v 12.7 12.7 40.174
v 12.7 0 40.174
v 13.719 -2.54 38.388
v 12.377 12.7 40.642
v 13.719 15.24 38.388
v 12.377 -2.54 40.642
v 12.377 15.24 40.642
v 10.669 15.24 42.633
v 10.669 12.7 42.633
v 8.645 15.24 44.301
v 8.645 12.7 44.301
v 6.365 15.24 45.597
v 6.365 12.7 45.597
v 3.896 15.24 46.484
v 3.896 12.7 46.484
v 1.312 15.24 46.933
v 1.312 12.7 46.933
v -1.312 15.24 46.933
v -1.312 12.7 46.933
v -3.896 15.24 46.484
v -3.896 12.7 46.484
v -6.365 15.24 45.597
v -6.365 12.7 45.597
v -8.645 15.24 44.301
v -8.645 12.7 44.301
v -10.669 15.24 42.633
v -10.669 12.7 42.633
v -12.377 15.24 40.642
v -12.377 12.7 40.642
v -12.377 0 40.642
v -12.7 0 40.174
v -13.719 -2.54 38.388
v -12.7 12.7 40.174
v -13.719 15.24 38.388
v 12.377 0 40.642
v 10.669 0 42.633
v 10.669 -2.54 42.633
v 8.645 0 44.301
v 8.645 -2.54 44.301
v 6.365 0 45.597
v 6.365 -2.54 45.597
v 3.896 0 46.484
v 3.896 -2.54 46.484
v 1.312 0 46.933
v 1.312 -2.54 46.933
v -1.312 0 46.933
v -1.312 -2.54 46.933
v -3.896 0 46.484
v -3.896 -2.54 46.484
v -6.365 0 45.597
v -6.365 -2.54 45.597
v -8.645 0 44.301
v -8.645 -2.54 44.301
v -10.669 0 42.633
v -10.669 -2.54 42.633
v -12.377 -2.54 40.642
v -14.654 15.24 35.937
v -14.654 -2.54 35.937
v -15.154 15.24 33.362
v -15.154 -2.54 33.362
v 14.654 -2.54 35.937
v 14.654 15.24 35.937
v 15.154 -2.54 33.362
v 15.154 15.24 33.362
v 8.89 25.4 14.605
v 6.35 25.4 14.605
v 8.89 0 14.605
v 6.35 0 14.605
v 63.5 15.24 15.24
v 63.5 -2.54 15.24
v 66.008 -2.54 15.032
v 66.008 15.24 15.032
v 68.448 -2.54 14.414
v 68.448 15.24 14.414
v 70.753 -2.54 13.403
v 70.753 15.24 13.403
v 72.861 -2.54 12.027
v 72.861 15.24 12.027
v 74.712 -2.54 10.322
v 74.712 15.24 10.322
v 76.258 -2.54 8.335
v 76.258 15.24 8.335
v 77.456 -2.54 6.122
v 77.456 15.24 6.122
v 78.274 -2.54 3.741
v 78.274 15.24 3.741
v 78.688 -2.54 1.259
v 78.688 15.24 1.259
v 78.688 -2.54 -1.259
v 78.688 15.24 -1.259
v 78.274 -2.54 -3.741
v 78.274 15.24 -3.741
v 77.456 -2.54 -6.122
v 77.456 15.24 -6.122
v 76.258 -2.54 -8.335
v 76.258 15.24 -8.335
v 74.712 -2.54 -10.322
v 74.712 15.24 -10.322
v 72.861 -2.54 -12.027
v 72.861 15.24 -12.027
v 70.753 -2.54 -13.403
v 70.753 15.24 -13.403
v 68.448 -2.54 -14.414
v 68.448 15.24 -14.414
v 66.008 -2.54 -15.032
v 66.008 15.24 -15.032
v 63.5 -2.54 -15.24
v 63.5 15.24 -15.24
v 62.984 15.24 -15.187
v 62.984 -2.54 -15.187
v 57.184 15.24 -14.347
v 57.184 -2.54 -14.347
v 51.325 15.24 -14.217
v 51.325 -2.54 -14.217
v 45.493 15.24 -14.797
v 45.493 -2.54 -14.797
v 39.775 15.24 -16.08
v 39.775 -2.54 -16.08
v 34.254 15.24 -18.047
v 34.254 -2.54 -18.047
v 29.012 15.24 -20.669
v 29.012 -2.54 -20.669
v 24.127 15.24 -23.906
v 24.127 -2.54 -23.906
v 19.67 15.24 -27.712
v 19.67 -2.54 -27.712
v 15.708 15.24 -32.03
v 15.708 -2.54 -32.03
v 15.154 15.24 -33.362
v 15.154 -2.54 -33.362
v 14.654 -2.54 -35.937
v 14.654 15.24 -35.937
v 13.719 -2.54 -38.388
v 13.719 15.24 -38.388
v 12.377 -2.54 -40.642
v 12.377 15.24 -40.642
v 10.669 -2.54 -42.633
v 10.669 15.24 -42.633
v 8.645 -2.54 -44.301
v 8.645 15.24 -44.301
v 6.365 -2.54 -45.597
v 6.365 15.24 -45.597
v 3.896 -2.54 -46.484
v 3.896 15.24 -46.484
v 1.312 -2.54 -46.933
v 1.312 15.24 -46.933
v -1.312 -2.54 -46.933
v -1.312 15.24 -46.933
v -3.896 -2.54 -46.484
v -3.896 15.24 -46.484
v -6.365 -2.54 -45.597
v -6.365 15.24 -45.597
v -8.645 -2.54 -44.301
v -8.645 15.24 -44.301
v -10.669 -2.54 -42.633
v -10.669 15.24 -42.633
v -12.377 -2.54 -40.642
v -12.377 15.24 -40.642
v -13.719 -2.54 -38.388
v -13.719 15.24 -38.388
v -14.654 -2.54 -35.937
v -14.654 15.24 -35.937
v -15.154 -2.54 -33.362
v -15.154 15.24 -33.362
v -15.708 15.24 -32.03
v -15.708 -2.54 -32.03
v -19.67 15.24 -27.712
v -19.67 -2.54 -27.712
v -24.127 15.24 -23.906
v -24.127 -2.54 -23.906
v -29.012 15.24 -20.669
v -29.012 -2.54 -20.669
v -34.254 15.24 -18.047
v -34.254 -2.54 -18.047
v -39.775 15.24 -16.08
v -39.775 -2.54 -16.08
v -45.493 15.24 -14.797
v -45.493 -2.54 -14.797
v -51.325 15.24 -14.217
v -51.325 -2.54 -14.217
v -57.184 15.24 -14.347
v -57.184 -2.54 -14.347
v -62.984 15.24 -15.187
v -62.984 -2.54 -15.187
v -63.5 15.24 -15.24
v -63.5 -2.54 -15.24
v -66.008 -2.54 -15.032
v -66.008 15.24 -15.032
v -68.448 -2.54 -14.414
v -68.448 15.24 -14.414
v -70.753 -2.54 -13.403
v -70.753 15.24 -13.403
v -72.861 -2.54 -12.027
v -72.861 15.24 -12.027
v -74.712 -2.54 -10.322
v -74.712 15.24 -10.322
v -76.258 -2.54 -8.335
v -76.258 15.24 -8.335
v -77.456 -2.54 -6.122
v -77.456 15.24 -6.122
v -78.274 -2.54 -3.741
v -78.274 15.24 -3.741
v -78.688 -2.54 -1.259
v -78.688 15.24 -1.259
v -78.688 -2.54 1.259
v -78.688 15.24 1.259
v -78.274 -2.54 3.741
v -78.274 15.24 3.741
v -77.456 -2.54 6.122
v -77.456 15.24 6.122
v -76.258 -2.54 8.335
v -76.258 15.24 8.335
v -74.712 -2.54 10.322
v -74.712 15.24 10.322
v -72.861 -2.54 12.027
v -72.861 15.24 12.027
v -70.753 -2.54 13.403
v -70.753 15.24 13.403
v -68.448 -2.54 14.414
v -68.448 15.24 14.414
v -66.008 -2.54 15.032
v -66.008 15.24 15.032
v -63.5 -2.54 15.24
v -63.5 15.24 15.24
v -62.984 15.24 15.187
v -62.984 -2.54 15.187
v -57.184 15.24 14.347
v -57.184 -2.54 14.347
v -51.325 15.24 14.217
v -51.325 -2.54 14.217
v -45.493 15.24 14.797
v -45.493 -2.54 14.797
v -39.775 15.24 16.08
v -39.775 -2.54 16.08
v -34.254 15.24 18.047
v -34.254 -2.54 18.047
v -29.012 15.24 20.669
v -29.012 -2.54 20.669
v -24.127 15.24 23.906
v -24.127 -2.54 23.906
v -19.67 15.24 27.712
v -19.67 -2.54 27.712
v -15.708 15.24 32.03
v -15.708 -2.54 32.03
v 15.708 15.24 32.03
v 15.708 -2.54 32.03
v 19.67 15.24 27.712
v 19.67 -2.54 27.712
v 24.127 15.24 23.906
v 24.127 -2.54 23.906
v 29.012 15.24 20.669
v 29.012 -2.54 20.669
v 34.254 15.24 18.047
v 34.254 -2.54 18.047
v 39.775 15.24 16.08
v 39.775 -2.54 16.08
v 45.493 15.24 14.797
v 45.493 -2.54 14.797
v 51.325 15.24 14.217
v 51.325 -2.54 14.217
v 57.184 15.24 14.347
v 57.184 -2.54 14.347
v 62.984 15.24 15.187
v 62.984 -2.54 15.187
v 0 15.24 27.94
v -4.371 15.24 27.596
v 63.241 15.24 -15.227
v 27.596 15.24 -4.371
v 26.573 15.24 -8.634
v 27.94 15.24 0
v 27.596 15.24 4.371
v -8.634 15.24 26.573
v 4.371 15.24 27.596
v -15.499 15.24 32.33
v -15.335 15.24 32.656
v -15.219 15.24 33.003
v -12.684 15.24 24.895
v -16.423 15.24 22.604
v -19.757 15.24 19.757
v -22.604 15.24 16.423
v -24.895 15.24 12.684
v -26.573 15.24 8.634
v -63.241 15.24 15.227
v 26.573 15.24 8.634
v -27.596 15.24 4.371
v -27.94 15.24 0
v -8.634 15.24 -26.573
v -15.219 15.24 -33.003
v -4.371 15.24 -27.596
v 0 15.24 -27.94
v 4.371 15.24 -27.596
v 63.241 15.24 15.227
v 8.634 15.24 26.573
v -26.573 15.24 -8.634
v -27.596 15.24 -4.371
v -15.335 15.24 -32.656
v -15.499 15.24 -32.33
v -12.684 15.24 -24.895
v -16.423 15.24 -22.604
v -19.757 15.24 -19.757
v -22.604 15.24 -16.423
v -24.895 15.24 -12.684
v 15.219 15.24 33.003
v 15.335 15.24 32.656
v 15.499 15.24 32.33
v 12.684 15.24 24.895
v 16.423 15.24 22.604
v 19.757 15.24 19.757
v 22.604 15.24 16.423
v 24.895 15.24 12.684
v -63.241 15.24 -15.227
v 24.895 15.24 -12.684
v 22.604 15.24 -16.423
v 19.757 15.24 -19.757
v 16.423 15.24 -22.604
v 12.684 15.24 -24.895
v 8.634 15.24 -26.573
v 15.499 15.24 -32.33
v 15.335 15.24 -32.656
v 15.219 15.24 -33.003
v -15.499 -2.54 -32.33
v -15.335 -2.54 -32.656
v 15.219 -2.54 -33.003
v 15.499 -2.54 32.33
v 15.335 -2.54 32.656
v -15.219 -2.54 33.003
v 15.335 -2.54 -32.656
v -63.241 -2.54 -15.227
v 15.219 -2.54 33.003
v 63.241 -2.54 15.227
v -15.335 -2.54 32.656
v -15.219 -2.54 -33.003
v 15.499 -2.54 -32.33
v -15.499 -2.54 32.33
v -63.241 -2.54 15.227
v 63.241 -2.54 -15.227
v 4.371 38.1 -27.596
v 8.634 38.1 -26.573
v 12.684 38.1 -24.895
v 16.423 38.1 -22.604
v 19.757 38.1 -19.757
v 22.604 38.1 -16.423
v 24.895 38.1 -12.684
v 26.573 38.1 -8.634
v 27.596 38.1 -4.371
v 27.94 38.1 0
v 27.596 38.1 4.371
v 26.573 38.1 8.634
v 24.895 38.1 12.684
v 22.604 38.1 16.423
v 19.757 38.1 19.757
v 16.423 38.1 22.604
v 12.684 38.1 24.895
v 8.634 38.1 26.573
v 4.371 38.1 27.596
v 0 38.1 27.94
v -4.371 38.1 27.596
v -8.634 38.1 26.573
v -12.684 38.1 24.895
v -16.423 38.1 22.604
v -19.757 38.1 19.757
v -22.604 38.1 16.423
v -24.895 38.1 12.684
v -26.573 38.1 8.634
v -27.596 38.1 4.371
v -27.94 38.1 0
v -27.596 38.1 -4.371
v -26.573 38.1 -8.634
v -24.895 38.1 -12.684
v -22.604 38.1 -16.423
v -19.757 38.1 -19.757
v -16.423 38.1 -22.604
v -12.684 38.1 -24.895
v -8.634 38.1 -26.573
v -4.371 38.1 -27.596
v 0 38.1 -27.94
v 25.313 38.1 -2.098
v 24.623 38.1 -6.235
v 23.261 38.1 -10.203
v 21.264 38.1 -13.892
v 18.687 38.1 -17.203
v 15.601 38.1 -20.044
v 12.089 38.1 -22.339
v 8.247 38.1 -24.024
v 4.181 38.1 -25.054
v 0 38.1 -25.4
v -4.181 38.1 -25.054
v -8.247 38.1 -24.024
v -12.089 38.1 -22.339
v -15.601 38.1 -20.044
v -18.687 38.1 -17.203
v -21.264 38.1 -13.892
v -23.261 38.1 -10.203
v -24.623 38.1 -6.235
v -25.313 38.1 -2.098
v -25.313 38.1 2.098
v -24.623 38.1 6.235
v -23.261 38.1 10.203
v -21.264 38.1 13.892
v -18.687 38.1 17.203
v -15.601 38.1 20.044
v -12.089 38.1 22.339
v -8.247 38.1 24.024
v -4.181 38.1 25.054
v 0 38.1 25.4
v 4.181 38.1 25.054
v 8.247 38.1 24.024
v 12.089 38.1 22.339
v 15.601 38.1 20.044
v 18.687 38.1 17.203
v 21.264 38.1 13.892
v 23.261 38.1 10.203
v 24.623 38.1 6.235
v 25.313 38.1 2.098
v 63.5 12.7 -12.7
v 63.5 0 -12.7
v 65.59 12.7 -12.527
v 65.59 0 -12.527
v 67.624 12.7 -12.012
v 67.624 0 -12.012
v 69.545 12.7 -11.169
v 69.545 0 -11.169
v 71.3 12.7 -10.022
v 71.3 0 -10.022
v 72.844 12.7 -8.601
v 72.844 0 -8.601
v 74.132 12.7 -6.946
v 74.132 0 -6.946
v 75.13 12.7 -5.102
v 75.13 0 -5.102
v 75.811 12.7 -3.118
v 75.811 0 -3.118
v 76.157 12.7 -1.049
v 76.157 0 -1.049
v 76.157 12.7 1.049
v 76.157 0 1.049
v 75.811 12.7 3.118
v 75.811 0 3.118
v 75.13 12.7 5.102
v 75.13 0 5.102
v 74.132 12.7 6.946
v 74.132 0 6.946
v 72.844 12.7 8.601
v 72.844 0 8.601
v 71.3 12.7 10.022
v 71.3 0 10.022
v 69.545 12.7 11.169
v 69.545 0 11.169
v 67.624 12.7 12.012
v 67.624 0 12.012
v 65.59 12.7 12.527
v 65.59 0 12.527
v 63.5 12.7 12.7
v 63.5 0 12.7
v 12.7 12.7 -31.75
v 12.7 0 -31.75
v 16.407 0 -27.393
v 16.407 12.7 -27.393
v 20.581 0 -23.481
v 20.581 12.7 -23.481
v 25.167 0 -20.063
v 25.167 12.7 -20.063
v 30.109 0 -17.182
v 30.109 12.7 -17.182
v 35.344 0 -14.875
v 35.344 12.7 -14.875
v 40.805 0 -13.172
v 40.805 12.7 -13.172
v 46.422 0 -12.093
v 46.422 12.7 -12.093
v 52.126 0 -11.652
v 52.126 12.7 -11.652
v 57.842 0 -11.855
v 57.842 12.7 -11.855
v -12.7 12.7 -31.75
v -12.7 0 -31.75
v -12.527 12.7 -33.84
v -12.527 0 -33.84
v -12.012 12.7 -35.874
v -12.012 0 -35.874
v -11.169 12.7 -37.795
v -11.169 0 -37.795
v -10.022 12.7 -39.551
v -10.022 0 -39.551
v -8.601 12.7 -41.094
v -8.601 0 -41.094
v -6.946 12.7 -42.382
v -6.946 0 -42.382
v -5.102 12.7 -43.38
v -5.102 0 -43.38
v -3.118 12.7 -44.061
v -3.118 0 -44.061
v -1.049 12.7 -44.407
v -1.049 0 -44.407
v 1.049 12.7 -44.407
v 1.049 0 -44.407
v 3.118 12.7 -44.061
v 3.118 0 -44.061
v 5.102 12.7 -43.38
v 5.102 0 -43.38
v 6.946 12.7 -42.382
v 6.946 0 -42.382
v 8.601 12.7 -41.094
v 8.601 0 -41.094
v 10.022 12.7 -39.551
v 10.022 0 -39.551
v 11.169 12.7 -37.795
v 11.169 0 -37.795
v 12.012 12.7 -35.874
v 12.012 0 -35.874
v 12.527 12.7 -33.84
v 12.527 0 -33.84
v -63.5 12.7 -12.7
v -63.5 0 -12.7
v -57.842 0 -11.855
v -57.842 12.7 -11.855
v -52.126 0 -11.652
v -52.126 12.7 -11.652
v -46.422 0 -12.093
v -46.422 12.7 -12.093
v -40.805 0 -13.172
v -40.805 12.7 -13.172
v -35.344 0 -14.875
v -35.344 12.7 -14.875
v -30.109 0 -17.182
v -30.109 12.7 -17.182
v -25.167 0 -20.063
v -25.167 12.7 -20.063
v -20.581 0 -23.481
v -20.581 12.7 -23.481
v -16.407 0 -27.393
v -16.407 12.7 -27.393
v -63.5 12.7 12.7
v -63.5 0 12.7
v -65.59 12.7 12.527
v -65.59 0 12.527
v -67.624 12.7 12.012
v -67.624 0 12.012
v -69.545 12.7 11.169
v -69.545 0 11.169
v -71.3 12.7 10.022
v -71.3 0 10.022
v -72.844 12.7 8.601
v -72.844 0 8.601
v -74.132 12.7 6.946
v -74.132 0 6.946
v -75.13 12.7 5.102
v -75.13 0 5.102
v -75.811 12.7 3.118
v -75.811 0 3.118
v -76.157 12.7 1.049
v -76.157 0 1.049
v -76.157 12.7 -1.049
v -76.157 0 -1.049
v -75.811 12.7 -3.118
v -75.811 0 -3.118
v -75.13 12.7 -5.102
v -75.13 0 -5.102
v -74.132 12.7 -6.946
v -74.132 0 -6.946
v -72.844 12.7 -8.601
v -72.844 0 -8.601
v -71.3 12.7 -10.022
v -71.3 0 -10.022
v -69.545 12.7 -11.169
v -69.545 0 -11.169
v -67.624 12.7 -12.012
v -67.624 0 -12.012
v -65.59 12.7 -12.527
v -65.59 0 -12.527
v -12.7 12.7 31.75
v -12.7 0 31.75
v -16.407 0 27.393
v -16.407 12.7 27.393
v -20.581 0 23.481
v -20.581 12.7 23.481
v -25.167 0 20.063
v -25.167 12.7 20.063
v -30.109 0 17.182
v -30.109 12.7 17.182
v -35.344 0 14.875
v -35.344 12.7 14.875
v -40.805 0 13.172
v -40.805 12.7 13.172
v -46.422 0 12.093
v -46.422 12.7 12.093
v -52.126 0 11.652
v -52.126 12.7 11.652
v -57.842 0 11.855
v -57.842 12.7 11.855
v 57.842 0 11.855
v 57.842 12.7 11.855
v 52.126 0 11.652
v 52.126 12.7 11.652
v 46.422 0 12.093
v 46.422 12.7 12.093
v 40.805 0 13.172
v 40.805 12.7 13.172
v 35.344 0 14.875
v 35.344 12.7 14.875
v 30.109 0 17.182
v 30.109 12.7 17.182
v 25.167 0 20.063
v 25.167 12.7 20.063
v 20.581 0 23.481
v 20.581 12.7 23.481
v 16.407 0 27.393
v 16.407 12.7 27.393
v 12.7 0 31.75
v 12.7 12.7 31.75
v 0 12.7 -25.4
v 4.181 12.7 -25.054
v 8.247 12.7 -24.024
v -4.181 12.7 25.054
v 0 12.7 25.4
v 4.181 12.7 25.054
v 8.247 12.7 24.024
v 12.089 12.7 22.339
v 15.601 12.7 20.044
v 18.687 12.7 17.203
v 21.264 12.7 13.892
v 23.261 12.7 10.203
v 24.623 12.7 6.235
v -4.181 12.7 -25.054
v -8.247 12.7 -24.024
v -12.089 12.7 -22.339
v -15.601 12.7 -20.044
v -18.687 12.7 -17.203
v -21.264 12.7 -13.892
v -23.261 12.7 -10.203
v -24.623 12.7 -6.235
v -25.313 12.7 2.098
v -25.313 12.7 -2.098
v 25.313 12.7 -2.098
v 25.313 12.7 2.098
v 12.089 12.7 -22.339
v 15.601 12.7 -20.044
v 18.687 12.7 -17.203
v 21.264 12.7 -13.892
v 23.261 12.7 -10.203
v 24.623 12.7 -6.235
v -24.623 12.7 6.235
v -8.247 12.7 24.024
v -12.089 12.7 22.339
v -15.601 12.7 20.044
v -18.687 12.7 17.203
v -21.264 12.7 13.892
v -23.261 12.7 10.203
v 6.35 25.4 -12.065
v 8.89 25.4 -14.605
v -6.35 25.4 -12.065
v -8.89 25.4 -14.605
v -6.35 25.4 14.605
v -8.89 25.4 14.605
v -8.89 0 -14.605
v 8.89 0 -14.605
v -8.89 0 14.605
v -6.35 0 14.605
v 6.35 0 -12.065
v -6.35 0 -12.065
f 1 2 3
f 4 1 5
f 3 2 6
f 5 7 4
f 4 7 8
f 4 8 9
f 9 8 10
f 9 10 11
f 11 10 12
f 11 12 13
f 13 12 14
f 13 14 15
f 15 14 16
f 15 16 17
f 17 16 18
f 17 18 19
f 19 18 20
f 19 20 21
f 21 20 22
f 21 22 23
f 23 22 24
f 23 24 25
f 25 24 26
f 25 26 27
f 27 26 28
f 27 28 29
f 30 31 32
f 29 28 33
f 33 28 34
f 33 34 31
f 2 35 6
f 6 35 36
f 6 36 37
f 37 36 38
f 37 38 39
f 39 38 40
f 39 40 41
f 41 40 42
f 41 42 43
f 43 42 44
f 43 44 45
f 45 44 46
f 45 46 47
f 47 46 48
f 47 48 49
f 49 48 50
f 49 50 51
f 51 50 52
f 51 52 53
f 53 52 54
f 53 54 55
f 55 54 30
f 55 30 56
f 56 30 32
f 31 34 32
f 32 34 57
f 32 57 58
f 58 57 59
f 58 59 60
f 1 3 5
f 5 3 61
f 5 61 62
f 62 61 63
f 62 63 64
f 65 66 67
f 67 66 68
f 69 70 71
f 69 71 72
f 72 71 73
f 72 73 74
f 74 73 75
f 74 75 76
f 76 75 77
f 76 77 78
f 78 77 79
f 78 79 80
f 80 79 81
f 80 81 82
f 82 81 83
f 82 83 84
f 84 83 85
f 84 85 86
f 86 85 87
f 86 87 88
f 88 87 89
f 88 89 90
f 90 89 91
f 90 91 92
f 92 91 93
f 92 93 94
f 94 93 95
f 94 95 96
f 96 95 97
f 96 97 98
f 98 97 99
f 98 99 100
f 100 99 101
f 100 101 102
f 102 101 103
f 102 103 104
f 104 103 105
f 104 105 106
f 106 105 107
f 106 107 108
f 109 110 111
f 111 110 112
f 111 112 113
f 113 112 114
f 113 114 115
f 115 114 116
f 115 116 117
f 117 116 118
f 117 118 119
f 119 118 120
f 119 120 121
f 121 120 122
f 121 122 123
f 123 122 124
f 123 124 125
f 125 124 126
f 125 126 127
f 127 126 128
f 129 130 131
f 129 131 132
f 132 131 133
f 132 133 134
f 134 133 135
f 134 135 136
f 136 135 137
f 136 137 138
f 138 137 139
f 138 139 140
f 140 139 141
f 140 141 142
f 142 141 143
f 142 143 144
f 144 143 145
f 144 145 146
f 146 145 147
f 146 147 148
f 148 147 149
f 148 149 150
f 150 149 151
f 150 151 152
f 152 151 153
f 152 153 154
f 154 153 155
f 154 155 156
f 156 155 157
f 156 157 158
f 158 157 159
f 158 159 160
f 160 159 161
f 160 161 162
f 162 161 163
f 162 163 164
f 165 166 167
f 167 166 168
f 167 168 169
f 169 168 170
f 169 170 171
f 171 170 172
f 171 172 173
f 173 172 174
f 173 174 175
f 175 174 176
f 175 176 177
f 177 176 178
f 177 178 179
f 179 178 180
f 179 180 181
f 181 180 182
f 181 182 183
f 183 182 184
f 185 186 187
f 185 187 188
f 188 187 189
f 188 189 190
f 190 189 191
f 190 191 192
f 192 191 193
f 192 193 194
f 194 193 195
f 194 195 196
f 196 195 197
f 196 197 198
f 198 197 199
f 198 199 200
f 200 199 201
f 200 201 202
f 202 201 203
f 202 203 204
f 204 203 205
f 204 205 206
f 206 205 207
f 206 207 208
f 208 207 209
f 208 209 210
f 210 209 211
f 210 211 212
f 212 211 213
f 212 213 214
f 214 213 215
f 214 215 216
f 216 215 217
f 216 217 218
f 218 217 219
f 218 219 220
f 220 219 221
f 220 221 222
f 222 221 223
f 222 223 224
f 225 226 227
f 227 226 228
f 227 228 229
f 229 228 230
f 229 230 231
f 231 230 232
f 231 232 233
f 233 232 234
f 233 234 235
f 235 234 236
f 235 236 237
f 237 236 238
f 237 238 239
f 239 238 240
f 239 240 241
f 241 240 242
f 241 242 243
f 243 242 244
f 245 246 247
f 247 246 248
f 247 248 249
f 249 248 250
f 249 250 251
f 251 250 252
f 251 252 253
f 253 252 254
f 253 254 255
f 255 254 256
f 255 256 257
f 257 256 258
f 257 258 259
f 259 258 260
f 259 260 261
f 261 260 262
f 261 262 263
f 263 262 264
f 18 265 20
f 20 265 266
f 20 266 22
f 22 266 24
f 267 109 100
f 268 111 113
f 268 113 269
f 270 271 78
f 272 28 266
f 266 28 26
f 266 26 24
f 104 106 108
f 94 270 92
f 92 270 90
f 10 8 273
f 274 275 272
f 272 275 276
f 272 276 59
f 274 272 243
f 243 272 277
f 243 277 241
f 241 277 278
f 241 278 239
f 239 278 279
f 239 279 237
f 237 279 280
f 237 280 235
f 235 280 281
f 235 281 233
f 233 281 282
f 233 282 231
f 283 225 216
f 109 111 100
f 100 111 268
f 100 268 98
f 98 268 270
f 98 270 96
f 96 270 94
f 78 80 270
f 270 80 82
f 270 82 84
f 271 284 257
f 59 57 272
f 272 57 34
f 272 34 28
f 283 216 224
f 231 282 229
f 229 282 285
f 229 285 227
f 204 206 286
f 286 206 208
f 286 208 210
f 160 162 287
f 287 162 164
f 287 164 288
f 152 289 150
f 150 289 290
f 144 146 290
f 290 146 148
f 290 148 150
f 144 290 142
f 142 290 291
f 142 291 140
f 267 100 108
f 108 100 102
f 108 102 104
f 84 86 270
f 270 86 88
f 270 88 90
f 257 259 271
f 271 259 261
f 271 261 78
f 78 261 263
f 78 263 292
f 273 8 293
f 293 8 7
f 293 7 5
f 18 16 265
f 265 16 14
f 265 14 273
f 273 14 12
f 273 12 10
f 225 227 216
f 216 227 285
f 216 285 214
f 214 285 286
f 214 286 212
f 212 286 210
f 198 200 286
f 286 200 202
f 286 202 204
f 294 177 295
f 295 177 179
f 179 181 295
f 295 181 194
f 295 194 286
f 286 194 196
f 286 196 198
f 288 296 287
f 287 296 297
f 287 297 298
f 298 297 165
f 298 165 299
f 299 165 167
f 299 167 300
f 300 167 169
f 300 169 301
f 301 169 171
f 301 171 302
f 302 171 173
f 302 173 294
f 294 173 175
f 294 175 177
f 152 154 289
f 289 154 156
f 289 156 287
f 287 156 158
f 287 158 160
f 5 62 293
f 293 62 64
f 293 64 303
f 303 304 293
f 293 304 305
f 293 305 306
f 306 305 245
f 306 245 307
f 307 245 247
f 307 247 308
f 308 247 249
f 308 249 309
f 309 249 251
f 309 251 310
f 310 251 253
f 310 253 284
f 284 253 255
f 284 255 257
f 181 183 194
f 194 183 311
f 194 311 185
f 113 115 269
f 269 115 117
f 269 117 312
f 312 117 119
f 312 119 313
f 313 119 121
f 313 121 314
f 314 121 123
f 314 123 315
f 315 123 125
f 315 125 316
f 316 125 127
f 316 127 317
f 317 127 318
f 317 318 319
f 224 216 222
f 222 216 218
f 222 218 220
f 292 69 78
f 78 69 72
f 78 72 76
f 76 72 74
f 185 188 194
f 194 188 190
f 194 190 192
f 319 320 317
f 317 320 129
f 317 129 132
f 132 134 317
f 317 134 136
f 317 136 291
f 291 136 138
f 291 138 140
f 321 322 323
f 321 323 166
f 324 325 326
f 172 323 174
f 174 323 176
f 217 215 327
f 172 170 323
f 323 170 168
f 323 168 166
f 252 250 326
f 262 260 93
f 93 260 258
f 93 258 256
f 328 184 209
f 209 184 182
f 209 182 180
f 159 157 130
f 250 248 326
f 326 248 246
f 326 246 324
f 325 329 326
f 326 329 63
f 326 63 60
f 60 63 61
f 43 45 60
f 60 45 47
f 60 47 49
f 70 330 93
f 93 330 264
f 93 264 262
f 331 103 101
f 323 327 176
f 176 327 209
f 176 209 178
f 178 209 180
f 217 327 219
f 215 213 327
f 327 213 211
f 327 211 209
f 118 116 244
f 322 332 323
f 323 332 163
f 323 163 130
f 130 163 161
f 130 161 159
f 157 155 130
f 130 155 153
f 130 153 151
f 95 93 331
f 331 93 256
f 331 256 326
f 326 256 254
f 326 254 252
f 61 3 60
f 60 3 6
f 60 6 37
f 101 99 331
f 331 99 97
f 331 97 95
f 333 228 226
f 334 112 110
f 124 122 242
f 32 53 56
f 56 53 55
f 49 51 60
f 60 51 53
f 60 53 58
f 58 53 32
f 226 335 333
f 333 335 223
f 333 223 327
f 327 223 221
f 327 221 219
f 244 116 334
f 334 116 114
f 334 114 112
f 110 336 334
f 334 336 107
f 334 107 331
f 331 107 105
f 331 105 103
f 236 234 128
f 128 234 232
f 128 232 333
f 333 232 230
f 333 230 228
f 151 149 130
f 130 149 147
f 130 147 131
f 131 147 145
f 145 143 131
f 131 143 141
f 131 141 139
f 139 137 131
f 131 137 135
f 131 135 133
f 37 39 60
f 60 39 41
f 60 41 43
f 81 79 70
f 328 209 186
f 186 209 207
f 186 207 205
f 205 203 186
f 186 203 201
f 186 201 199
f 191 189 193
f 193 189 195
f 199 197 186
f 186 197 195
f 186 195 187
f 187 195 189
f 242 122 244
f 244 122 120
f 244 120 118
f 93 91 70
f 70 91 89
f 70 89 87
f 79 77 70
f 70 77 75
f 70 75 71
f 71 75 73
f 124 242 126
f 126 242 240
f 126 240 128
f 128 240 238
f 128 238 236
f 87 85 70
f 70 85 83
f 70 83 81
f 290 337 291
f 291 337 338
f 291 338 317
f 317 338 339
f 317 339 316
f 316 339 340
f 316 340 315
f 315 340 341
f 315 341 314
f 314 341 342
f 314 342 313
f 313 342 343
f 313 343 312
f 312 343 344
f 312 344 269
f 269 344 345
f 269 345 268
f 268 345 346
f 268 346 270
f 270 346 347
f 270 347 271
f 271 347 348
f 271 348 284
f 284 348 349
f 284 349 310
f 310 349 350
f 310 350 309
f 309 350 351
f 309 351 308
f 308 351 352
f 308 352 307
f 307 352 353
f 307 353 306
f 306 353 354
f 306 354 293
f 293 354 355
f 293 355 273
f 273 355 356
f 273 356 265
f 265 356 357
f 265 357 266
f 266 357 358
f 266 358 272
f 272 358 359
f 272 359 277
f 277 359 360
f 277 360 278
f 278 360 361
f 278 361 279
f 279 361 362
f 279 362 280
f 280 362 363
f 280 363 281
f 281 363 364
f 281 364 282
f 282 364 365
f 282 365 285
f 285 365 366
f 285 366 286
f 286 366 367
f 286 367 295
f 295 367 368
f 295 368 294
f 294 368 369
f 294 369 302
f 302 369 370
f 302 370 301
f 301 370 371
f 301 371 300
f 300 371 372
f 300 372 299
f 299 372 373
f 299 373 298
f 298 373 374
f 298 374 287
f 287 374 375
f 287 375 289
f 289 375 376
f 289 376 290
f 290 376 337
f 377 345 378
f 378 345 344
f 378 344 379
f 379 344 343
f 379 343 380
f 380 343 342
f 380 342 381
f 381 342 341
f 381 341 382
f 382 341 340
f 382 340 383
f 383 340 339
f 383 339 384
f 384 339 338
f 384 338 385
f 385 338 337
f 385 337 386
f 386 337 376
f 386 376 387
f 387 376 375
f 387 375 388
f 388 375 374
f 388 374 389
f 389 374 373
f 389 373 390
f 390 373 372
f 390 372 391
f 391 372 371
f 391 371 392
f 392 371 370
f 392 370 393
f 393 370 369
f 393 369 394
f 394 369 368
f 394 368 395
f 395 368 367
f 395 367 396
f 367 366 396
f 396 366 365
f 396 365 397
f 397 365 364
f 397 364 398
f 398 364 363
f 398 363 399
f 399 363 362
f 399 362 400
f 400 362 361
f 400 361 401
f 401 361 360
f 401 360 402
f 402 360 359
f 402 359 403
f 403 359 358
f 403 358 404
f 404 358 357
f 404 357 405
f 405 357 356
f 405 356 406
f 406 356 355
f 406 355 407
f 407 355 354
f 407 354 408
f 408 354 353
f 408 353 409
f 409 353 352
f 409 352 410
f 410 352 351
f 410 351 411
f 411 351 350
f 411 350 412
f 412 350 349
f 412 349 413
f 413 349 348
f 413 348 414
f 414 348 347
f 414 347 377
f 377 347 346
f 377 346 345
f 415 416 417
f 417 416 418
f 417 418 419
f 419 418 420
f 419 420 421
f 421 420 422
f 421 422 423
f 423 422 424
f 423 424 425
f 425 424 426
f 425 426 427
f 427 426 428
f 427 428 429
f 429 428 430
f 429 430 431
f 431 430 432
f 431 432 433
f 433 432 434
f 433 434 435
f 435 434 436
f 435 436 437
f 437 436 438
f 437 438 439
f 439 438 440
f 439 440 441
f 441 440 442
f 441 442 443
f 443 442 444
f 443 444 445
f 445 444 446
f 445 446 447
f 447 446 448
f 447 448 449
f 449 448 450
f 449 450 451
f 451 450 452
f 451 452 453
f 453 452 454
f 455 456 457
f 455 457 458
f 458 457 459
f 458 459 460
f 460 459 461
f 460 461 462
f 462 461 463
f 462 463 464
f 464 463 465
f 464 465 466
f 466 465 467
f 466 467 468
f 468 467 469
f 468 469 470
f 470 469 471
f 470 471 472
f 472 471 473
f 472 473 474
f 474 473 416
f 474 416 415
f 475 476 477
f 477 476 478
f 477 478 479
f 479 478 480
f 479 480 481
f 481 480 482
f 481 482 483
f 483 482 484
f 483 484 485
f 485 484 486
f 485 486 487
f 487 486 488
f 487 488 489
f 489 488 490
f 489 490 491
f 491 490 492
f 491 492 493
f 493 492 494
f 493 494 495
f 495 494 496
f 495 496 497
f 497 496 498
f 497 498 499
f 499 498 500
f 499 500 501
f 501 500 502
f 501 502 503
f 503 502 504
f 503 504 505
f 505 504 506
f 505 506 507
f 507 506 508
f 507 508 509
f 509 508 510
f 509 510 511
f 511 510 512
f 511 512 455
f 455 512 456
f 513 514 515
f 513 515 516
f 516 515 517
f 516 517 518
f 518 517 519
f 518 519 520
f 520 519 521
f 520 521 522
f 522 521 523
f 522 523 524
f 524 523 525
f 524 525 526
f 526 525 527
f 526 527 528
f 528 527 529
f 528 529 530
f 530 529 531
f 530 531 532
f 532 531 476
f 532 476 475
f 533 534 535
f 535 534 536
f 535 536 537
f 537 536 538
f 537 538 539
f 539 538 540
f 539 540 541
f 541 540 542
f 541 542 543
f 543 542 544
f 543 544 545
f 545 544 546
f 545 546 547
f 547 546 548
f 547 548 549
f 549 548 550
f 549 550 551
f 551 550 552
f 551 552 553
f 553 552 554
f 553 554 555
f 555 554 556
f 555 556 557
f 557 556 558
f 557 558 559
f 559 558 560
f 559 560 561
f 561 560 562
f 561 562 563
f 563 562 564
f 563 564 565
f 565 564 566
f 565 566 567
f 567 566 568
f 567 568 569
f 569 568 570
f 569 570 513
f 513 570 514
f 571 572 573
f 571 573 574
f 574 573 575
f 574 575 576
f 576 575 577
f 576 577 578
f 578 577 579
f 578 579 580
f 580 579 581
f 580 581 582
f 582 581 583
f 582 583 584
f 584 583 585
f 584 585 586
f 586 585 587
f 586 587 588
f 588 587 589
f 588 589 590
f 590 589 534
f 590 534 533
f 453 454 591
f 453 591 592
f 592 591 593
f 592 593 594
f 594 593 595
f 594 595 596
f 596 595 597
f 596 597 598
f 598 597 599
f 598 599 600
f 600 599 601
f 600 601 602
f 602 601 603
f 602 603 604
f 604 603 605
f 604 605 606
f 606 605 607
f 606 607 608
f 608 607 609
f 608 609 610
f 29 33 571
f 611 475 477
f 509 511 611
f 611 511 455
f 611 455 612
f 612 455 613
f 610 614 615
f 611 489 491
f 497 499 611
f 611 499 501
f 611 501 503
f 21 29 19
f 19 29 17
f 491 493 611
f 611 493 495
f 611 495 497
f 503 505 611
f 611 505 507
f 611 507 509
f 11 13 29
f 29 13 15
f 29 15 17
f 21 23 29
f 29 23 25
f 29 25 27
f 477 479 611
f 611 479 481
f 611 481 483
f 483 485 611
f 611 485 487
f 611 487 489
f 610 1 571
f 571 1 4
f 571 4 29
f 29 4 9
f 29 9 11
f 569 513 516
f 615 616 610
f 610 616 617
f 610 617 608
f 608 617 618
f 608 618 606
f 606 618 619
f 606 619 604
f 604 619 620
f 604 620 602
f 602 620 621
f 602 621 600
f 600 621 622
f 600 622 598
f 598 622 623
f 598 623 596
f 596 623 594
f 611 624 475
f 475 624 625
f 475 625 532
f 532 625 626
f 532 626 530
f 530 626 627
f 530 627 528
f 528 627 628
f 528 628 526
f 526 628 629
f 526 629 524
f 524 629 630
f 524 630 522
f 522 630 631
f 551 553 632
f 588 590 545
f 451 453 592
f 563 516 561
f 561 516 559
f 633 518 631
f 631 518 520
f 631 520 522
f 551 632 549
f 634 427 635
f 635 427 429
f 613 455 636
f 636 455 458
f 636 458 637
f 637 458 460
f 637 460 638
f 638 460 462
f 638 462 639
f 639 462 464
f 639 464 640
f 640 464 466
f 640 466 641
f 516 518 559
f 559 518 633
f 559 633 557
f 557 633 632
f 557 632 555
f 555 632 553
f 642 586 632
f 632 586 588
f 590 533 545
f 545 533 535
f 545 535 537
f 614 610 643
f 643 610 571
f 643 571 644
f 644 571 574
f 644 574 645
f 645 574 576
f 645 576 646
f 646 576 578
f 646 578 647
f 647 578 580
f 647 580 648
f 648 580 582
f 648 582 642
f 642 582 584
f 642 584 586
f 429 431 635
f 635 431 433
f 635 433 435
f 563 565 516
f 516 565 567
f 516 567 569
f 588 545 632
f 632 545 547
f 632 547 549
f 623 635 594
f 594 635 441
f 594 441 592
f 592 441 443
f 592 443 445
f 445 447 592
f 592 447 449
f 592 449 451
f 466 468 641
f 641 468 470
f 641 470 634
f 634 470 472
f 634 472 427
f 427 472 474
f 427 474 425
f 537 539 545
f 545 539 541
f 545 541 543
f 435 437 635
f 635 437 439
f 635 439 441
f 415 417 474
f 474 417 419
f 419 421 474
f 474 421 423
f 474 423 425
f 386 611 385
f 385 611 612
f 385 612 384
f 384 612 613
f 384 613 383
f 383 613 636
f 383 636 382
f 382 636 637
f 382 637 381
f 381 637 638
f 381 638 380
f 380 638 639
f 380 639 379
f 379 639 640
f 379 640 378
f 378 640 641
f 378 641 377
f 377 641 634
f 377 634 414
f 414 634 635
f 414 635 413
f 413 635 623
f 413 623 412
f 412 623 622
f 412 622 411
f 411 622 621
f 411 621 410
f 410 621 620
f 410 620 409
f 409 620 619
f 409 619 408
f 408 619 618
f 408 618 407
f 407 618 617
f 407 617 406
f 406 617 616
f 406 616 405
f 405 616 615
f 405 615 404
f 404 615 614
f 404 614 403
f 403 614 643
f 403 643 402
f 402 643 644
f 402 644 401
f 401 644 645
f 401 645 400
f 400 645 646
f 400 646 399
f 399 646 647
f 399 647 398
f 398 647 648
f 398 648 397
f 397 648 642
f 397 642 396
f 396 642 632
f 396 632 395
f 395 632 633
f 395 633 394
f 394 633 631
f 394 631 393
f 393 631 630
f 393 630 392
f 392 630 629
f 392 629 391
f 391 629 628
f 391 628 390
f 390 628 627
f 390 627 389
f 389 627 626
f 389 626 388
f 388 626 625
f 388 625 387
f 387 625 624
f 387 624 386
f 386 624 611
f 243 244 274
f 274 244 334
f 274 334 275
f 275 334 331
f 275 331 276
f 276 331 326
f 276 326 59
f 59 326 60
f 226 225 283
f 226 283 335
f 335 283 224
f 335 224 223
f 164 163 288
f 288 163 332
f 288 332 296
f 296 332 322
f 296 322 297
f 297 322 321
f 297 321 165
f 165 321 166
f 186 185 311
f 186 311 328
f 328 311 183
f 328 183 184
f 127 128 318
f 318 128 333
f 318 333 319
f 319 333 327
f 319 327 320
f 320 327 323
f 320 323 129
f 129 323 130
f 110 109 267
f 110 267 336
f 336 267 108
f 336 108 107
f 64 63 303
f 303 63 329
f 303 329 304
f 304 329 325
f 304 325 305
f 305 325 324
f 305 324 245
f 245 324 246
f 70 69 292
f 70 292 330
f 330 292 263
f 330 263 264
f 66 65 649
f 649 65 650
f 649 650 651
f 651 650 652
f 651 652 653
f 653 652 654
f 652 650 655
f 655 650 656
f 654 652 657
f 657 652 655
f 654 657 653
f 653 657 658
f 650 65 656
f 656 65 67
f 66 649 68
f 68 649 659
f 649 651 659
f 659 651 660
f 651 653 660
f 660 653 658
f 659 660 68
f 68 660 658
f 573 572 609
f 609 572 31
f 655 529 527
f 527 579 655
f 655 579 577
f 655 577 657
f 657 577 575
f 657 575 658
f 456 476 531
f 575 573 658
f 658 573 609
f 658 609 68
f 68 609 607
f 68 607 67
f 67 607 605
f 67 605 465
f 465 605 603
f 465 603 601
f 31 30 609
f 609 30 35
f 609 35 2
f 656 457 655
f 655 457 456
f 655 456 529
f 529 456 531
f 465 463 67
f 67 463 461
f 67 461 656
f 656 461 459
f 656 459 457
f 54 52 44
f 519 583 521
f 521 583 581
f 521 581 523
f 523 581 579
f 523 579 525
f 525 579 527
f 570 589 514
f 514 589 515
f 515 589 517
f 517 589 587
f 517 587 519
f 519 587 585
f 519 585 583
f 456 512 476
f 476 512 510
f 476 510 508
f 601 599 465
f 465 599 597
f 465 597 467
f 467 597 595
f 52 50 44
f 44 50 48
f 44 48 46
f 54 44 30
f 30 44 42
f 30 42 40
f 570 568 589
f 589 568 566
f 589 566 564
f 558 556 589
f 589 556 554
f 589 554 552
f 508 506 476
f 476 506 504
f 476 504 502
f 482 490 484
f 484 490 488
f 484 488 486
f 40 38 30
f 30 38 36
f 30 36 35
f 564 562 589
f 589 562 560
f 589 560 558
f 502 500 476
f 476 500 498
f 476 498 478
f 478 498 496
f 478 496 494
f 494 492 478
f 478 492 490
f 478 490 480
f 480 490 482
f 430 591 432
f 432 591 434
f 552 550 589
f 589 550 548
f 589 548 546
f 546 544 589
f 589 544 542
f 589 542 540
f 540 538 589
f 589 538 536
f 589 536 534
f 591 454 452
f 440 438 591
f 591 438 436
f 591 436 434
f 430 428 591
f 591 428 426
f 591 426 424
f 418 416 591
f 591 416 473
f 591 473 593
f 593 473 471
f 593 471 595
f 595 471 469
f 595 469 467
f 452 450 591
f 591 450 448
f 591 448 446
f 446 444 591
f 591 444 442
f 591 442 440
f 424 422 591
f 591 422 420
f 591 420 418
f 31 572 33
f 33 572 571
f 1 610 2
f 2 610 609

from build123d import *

# Parameters (mm, degrees)
BOSS_EXTRUDE6_DEPTH = 12.7
SKETCH10_R          = 25.4
BOSS_EXTRUDE7_DEPTH = 25.4
SHELL14_T           = 2.5399999999999943
FILLET1_R           = 2.54
BOSS_EXTRUDE8_DEPTH = 25.4
SKETCH12_W          = 12.7
SKETCH12_H          = 2.5399999999999974
CUT_EXTRUDE6_DEPTH  = 25.4
CUT_EXTRUDE7_REACH  = 108.984
SKETCH15_W          = 25.4
SKETCH15_H          = 12.699999999999998


with BuildPart() as part:
    # Sketch9 → Boss-Extrude6 (new body)
    with BuildSketch(Plane(origin=(0, 0, 0), x_dir=(1, 0, 0), z_dir=(0, 1, 0))):
        with BuildLine():
            ThreePointArc((-63.5, 12.699999999999985), (-76.2, -1.232e-14), (-63.5, -12.700000000000014))
            ThreePointArc((-63.5, -12.700000000000014), (-35.34389302544592, -14.875381401189138), (-12.7, -31.75))
            ThreePointArc((-12.7, -31.75), (1.154e-14, -44.45000000000002), (12.7, -31.75))
            ThreePointArc((12.7, -31.75), (35.34389302544593, -14.875381401189138), (63.5, -12.700000000000001))
            ThreePointArc((63.5, -12.700000000000001), (76.2, 1.68e-15), (63.5, 12.700000000000001))
            ThreePointArc((63.5, 12.700000000000001), (35.34389302544591, 14.87538140118913), (12.7, 31.75))
            ThreePointArc((12.7, 31.75), (4.06e-15, 44.44999999999999), (-12.7, 31.75))
            ThreePointArc((-12.7, 31.75), (-35.34389302544592, 14.87538140118913), (-63.5, 12.699999999999985))
        make_face()
    extrude(amount=BOSS_EXTRUDE6_DEPTH)

    # Sketch10 → Boss-Extrude7 (add)
    with BuildSketch(Plane(origin=(0, 12.7, 0), x_dir=(1, 0, 0), z_dir=(0, 1, 0))):
        with Locations(Location((0, 0, 0), (0, 0, 270))):
            Circle(SKETCH10_R)
    extrude(amount=BOSS_EXTRUDE7_DEPTH)

    # Shell14
    shell14_openings = [part.faces().sort_by_distance(p)[0] for p in [
        (0, 38.1, 0),
    ]]
    offset(amount=SHELL14_T, openings=shell14_openings, kind=Kind.INTERSECTION)

    # Fillet1
    # the kernel refuses this fillet: 2.54 mm, written as the material it adds along each edge
    with BuildSketch(Plane(origin=(15.213395442859193, 15.239999999999993, 32.65011060386543), x_dir=(-0.08244746024425967, 0, 0.9965954125417552), z_dir=(0, -1, 0))) as fillet1_piece_1:
        with BuildLine():
            CenterArc((0.7740627209529523, -2.5393019901274583), FILLET1_R, 91.3432643866729, 32.987937528232266)
            ThreePointArc((-0.6584359095530802, -0.44179211563381704), (-0.33012530713560906, -0.2195437625751302), (0, 0))
            ThreePointArc((0, 0), (0.357259717362898, -0.00418805923524796), (0.7145194347258012, 0))
        make_face()
    extrude(amount=17.779999999999987)
    with BuildSketch(Plane(origin=(-15.213395442859223, 15.239999999999993, 32.65011060386536), x_dir=(-0.623740024012636, 0, -0.7816318714361103), z_dir=(0, -1, 0))) as fillet1_piece_2:
        with BuildLine():
            CenterArc((0.7720512245924565, -2.5399142898215286), FILLET1_R, 89.52930650878288, 32.98793752823278)
            ThreePointArc((-0.5933344507841877, -0.3981108540515074), (-0.2943337523500303, -0.20253317683271896), (0, 0))
            ThreePointArc((0, 0), (0.396458736952872, 0.00162849339096533), (0.7929174739057625, 3e-17))
        make_face()
    extrude(amount=17.779999999999987)
    with BuildSketch(Plane(origin=(-15.213395442859191, 15.239999999999993, -32.6501106038654), x_dir=(-0.6237400240126415, 0, 0.781631871436106), z_dir=(0, -1, 0))) as fillet1_piece_3:
        with BuildLine():
            CenterArc((0.7720512245925322, 2.5399142898215272), FILLET1_R, 237.48275596298424, 32.987937528232294)
            ThreePointArc((-0.593334450784115, 0.3981108540515081), (-0.2943337523499901, 0.20253317683272415), (0, 0))
            ThreePointArc((0, 0), (0.3964587369529053, -0.00162849339097196), (0.7929174739058125, 2e-17))
        make_face()
    extrude(amount=17.779999999999987)
    with BuildSketch(Plane(origin=(15.21339544285919, 15.239999999999993, -32.65011060386541), x_dir=(-0.08244746024426708, 0, -0.9965954125417545), z_dir=(0, -1, 0))) as fillet1_piece_4:
        with BuildLine():
            CenterArc((0.7740627209529621, 2.539301990127459), FILLET1_R, 235.66879808509486, 32.987937528232465)
            ThreePointArc((-0.6584359095530695, 0.44179211563381504), (-0.330125307135611, 0.21954376257513125), (0, 0))
            ThreePointArc((0, 0), (0.3572597173629123, 0.00418805923525002), (0.714519434725823, 0))
        make_face()
    extrude(amount=17.779999999999987)
    # the kernel refuses this fillet: 2.54 mm, written as the material it takes off along each edge
    with BuildSketch(Plane(origin=(63.22420496202578, 15.929515824336315, 15.23750429358524), x_dir=(-0.9786320251398054, 0, -0.2056194528024121), z_dir=(0, -1, 0))) as fillet1_2_piece_1:
        with BuildLine():
            CenterArc((0.25185838779454184, 2.5399917904261593), FILLET1_R, 258.13423637706234, 11.720089907990712)
            ThreePointArc((-0.2704150223235917, 0.05426644657105567), (-0.13533027474319617, 0.02652148032641584), (0, 0))
            ThreePointArc((0, 0), (0.12270024020757794, 0.00015598190298779), (0.2454004804151519, 0))
        make_face()
    extrude(amount=19.15903164867263, mode=Mode.SUBTRACT)
    with BuildSketch(Plane(origin=(-63.22420496202586, 15.929515824336706, 15.237504293585257), x_dir=(-0.9999590590960623, 0, 0.009048764098899606), z_dir=(0, -1, 0))) as fillet1_2_piece_2:
        with BuildLine():
            CenterArc((0.2528224689234374, 2.5398960101039973), FILLET1_R, 258.79837316015426, 11.720089907990541)
            ThreePointArc((-0.24060352948943128, 0.04828392470822683), (-0.12027107442804234, 0.02429489521037388), (0, 0))
            ThreePointArc((0, 0), (0.1379031648673247, -0.00062393937600912), (0.27580632973464947, 0))
        make_face()
    extrude(amount=19.159031648673412, mode=Mode.SUBTRACT)
    with BuildSketch(Plane(origin=(-63.22420496202585, 15.92951582433667, -15.237504293585229), x_dir=(-0.9999590590960623, 0, -0.00904876409889914), z_dir=(0, -1, 0))) as fillet1_2_piece_3:
        with BuildLine():
            CenterArc((0.2528224689234528, -2.5398960101039973), FILLET1_R, 89.48153693185522, 11.720089907991053)
            ThreePointArc((-0.2406035294894384, -0.04828392470823043), (-0.12027107442802101, -0.02429489521037413), (0, 0))
            ThreePointArc((0, 0), (0.1379031648673247, 0.00062393937600918), (0.2758063297346637, 0))
        make_face()
    extrude(amount=19.15903164867334, mode=Mode.SUBTRACT)
    with BuildSketch(Plane(origin=(63.22420496202587, 15.929515824336635, -15.237504293585246), x_dir=(0.9999590590960625, 0, -0.00904876409889984), z_dir=(0, -1, 0))) as fillet1_2_piece_4:
        with BuildLine():
            CenterArc((0.25282246892342264, 2.539896010103998), FILLET1_R, 258.79837316015426, 11.720089907990712)
            ThreePointArc((-0.24060352948944552, 0.04828392470822666), (-0.12027107442801392, 0.02429489521037056), (0, 0))
            ThreePointArc((0, 0), (0.13790316486732473, -0.00062393937600909), (0.2758063297346424, 0))
        make_face()
    extrude(amount=19.15903164867327, mode=Mode.SUBTRACT)

    # Sketch11 → Boss-Extrude8 (add)
    with BuildSketch(Plane(origin=(0, 0, 0), x_dir=(1, 0, 0), z_dir=(0, 1, 0))):
        Polygon((8.889999999999997, 14.605), (8.890000000000002, -14.605), (-8.889999999999999, -14.604999999999997), (-8.890000000000002, 14.605), align=None)
        Polygon((-6.350000000000001, 12.065), (6.349999999999998, 12.065), (6.3500000000000005, -12.065), (-6.349999999999999, -12.065), align=None, mode=Mode.SUBTRACT)
    extrude(amount=BOSS_EXTRUDE8_DEPTH)

    # Sketch12 → Cut-Extrude6 (cut)
    with BuildSketch(Plane(origin=(0, 25.4, 0), x_dir=(1, 0, 0), z_dir=(0, 1, 0))):
        with Locations((8.9e-16, -13.334999999999997)):
            Rectangle(SKETCH12_W, SKETCH12_H)
    extrude(amount=-CUT_EXTRUDE6_DEPTH, mode=Mode.SUBTRACT)

    # Sketch15 → Cut-Extrude7 (cut, up to next)
    with BuildSketch(Plane.XY.offset(14.604999999999999), mode=Mode.PRIVATE) as cut_extrude7_sk1:
        with Locations((1.865e-14, 6.349999999999999)):
            Rectangle(SKETCH15_W, SKETCH15_H)
    cut_extrude7_tool1 = extrude(cut_extrude7_sk1.sketch, amount=CUT_EXTRUDE7_REACH, mode=Mode.PRIVATE) & part.part
    add(cut_extrude7_tool1.solids().sort_by_distance((0, 6.35, 14.605))[0], mode=Mode.SUBTRACT)


solid = part.part
